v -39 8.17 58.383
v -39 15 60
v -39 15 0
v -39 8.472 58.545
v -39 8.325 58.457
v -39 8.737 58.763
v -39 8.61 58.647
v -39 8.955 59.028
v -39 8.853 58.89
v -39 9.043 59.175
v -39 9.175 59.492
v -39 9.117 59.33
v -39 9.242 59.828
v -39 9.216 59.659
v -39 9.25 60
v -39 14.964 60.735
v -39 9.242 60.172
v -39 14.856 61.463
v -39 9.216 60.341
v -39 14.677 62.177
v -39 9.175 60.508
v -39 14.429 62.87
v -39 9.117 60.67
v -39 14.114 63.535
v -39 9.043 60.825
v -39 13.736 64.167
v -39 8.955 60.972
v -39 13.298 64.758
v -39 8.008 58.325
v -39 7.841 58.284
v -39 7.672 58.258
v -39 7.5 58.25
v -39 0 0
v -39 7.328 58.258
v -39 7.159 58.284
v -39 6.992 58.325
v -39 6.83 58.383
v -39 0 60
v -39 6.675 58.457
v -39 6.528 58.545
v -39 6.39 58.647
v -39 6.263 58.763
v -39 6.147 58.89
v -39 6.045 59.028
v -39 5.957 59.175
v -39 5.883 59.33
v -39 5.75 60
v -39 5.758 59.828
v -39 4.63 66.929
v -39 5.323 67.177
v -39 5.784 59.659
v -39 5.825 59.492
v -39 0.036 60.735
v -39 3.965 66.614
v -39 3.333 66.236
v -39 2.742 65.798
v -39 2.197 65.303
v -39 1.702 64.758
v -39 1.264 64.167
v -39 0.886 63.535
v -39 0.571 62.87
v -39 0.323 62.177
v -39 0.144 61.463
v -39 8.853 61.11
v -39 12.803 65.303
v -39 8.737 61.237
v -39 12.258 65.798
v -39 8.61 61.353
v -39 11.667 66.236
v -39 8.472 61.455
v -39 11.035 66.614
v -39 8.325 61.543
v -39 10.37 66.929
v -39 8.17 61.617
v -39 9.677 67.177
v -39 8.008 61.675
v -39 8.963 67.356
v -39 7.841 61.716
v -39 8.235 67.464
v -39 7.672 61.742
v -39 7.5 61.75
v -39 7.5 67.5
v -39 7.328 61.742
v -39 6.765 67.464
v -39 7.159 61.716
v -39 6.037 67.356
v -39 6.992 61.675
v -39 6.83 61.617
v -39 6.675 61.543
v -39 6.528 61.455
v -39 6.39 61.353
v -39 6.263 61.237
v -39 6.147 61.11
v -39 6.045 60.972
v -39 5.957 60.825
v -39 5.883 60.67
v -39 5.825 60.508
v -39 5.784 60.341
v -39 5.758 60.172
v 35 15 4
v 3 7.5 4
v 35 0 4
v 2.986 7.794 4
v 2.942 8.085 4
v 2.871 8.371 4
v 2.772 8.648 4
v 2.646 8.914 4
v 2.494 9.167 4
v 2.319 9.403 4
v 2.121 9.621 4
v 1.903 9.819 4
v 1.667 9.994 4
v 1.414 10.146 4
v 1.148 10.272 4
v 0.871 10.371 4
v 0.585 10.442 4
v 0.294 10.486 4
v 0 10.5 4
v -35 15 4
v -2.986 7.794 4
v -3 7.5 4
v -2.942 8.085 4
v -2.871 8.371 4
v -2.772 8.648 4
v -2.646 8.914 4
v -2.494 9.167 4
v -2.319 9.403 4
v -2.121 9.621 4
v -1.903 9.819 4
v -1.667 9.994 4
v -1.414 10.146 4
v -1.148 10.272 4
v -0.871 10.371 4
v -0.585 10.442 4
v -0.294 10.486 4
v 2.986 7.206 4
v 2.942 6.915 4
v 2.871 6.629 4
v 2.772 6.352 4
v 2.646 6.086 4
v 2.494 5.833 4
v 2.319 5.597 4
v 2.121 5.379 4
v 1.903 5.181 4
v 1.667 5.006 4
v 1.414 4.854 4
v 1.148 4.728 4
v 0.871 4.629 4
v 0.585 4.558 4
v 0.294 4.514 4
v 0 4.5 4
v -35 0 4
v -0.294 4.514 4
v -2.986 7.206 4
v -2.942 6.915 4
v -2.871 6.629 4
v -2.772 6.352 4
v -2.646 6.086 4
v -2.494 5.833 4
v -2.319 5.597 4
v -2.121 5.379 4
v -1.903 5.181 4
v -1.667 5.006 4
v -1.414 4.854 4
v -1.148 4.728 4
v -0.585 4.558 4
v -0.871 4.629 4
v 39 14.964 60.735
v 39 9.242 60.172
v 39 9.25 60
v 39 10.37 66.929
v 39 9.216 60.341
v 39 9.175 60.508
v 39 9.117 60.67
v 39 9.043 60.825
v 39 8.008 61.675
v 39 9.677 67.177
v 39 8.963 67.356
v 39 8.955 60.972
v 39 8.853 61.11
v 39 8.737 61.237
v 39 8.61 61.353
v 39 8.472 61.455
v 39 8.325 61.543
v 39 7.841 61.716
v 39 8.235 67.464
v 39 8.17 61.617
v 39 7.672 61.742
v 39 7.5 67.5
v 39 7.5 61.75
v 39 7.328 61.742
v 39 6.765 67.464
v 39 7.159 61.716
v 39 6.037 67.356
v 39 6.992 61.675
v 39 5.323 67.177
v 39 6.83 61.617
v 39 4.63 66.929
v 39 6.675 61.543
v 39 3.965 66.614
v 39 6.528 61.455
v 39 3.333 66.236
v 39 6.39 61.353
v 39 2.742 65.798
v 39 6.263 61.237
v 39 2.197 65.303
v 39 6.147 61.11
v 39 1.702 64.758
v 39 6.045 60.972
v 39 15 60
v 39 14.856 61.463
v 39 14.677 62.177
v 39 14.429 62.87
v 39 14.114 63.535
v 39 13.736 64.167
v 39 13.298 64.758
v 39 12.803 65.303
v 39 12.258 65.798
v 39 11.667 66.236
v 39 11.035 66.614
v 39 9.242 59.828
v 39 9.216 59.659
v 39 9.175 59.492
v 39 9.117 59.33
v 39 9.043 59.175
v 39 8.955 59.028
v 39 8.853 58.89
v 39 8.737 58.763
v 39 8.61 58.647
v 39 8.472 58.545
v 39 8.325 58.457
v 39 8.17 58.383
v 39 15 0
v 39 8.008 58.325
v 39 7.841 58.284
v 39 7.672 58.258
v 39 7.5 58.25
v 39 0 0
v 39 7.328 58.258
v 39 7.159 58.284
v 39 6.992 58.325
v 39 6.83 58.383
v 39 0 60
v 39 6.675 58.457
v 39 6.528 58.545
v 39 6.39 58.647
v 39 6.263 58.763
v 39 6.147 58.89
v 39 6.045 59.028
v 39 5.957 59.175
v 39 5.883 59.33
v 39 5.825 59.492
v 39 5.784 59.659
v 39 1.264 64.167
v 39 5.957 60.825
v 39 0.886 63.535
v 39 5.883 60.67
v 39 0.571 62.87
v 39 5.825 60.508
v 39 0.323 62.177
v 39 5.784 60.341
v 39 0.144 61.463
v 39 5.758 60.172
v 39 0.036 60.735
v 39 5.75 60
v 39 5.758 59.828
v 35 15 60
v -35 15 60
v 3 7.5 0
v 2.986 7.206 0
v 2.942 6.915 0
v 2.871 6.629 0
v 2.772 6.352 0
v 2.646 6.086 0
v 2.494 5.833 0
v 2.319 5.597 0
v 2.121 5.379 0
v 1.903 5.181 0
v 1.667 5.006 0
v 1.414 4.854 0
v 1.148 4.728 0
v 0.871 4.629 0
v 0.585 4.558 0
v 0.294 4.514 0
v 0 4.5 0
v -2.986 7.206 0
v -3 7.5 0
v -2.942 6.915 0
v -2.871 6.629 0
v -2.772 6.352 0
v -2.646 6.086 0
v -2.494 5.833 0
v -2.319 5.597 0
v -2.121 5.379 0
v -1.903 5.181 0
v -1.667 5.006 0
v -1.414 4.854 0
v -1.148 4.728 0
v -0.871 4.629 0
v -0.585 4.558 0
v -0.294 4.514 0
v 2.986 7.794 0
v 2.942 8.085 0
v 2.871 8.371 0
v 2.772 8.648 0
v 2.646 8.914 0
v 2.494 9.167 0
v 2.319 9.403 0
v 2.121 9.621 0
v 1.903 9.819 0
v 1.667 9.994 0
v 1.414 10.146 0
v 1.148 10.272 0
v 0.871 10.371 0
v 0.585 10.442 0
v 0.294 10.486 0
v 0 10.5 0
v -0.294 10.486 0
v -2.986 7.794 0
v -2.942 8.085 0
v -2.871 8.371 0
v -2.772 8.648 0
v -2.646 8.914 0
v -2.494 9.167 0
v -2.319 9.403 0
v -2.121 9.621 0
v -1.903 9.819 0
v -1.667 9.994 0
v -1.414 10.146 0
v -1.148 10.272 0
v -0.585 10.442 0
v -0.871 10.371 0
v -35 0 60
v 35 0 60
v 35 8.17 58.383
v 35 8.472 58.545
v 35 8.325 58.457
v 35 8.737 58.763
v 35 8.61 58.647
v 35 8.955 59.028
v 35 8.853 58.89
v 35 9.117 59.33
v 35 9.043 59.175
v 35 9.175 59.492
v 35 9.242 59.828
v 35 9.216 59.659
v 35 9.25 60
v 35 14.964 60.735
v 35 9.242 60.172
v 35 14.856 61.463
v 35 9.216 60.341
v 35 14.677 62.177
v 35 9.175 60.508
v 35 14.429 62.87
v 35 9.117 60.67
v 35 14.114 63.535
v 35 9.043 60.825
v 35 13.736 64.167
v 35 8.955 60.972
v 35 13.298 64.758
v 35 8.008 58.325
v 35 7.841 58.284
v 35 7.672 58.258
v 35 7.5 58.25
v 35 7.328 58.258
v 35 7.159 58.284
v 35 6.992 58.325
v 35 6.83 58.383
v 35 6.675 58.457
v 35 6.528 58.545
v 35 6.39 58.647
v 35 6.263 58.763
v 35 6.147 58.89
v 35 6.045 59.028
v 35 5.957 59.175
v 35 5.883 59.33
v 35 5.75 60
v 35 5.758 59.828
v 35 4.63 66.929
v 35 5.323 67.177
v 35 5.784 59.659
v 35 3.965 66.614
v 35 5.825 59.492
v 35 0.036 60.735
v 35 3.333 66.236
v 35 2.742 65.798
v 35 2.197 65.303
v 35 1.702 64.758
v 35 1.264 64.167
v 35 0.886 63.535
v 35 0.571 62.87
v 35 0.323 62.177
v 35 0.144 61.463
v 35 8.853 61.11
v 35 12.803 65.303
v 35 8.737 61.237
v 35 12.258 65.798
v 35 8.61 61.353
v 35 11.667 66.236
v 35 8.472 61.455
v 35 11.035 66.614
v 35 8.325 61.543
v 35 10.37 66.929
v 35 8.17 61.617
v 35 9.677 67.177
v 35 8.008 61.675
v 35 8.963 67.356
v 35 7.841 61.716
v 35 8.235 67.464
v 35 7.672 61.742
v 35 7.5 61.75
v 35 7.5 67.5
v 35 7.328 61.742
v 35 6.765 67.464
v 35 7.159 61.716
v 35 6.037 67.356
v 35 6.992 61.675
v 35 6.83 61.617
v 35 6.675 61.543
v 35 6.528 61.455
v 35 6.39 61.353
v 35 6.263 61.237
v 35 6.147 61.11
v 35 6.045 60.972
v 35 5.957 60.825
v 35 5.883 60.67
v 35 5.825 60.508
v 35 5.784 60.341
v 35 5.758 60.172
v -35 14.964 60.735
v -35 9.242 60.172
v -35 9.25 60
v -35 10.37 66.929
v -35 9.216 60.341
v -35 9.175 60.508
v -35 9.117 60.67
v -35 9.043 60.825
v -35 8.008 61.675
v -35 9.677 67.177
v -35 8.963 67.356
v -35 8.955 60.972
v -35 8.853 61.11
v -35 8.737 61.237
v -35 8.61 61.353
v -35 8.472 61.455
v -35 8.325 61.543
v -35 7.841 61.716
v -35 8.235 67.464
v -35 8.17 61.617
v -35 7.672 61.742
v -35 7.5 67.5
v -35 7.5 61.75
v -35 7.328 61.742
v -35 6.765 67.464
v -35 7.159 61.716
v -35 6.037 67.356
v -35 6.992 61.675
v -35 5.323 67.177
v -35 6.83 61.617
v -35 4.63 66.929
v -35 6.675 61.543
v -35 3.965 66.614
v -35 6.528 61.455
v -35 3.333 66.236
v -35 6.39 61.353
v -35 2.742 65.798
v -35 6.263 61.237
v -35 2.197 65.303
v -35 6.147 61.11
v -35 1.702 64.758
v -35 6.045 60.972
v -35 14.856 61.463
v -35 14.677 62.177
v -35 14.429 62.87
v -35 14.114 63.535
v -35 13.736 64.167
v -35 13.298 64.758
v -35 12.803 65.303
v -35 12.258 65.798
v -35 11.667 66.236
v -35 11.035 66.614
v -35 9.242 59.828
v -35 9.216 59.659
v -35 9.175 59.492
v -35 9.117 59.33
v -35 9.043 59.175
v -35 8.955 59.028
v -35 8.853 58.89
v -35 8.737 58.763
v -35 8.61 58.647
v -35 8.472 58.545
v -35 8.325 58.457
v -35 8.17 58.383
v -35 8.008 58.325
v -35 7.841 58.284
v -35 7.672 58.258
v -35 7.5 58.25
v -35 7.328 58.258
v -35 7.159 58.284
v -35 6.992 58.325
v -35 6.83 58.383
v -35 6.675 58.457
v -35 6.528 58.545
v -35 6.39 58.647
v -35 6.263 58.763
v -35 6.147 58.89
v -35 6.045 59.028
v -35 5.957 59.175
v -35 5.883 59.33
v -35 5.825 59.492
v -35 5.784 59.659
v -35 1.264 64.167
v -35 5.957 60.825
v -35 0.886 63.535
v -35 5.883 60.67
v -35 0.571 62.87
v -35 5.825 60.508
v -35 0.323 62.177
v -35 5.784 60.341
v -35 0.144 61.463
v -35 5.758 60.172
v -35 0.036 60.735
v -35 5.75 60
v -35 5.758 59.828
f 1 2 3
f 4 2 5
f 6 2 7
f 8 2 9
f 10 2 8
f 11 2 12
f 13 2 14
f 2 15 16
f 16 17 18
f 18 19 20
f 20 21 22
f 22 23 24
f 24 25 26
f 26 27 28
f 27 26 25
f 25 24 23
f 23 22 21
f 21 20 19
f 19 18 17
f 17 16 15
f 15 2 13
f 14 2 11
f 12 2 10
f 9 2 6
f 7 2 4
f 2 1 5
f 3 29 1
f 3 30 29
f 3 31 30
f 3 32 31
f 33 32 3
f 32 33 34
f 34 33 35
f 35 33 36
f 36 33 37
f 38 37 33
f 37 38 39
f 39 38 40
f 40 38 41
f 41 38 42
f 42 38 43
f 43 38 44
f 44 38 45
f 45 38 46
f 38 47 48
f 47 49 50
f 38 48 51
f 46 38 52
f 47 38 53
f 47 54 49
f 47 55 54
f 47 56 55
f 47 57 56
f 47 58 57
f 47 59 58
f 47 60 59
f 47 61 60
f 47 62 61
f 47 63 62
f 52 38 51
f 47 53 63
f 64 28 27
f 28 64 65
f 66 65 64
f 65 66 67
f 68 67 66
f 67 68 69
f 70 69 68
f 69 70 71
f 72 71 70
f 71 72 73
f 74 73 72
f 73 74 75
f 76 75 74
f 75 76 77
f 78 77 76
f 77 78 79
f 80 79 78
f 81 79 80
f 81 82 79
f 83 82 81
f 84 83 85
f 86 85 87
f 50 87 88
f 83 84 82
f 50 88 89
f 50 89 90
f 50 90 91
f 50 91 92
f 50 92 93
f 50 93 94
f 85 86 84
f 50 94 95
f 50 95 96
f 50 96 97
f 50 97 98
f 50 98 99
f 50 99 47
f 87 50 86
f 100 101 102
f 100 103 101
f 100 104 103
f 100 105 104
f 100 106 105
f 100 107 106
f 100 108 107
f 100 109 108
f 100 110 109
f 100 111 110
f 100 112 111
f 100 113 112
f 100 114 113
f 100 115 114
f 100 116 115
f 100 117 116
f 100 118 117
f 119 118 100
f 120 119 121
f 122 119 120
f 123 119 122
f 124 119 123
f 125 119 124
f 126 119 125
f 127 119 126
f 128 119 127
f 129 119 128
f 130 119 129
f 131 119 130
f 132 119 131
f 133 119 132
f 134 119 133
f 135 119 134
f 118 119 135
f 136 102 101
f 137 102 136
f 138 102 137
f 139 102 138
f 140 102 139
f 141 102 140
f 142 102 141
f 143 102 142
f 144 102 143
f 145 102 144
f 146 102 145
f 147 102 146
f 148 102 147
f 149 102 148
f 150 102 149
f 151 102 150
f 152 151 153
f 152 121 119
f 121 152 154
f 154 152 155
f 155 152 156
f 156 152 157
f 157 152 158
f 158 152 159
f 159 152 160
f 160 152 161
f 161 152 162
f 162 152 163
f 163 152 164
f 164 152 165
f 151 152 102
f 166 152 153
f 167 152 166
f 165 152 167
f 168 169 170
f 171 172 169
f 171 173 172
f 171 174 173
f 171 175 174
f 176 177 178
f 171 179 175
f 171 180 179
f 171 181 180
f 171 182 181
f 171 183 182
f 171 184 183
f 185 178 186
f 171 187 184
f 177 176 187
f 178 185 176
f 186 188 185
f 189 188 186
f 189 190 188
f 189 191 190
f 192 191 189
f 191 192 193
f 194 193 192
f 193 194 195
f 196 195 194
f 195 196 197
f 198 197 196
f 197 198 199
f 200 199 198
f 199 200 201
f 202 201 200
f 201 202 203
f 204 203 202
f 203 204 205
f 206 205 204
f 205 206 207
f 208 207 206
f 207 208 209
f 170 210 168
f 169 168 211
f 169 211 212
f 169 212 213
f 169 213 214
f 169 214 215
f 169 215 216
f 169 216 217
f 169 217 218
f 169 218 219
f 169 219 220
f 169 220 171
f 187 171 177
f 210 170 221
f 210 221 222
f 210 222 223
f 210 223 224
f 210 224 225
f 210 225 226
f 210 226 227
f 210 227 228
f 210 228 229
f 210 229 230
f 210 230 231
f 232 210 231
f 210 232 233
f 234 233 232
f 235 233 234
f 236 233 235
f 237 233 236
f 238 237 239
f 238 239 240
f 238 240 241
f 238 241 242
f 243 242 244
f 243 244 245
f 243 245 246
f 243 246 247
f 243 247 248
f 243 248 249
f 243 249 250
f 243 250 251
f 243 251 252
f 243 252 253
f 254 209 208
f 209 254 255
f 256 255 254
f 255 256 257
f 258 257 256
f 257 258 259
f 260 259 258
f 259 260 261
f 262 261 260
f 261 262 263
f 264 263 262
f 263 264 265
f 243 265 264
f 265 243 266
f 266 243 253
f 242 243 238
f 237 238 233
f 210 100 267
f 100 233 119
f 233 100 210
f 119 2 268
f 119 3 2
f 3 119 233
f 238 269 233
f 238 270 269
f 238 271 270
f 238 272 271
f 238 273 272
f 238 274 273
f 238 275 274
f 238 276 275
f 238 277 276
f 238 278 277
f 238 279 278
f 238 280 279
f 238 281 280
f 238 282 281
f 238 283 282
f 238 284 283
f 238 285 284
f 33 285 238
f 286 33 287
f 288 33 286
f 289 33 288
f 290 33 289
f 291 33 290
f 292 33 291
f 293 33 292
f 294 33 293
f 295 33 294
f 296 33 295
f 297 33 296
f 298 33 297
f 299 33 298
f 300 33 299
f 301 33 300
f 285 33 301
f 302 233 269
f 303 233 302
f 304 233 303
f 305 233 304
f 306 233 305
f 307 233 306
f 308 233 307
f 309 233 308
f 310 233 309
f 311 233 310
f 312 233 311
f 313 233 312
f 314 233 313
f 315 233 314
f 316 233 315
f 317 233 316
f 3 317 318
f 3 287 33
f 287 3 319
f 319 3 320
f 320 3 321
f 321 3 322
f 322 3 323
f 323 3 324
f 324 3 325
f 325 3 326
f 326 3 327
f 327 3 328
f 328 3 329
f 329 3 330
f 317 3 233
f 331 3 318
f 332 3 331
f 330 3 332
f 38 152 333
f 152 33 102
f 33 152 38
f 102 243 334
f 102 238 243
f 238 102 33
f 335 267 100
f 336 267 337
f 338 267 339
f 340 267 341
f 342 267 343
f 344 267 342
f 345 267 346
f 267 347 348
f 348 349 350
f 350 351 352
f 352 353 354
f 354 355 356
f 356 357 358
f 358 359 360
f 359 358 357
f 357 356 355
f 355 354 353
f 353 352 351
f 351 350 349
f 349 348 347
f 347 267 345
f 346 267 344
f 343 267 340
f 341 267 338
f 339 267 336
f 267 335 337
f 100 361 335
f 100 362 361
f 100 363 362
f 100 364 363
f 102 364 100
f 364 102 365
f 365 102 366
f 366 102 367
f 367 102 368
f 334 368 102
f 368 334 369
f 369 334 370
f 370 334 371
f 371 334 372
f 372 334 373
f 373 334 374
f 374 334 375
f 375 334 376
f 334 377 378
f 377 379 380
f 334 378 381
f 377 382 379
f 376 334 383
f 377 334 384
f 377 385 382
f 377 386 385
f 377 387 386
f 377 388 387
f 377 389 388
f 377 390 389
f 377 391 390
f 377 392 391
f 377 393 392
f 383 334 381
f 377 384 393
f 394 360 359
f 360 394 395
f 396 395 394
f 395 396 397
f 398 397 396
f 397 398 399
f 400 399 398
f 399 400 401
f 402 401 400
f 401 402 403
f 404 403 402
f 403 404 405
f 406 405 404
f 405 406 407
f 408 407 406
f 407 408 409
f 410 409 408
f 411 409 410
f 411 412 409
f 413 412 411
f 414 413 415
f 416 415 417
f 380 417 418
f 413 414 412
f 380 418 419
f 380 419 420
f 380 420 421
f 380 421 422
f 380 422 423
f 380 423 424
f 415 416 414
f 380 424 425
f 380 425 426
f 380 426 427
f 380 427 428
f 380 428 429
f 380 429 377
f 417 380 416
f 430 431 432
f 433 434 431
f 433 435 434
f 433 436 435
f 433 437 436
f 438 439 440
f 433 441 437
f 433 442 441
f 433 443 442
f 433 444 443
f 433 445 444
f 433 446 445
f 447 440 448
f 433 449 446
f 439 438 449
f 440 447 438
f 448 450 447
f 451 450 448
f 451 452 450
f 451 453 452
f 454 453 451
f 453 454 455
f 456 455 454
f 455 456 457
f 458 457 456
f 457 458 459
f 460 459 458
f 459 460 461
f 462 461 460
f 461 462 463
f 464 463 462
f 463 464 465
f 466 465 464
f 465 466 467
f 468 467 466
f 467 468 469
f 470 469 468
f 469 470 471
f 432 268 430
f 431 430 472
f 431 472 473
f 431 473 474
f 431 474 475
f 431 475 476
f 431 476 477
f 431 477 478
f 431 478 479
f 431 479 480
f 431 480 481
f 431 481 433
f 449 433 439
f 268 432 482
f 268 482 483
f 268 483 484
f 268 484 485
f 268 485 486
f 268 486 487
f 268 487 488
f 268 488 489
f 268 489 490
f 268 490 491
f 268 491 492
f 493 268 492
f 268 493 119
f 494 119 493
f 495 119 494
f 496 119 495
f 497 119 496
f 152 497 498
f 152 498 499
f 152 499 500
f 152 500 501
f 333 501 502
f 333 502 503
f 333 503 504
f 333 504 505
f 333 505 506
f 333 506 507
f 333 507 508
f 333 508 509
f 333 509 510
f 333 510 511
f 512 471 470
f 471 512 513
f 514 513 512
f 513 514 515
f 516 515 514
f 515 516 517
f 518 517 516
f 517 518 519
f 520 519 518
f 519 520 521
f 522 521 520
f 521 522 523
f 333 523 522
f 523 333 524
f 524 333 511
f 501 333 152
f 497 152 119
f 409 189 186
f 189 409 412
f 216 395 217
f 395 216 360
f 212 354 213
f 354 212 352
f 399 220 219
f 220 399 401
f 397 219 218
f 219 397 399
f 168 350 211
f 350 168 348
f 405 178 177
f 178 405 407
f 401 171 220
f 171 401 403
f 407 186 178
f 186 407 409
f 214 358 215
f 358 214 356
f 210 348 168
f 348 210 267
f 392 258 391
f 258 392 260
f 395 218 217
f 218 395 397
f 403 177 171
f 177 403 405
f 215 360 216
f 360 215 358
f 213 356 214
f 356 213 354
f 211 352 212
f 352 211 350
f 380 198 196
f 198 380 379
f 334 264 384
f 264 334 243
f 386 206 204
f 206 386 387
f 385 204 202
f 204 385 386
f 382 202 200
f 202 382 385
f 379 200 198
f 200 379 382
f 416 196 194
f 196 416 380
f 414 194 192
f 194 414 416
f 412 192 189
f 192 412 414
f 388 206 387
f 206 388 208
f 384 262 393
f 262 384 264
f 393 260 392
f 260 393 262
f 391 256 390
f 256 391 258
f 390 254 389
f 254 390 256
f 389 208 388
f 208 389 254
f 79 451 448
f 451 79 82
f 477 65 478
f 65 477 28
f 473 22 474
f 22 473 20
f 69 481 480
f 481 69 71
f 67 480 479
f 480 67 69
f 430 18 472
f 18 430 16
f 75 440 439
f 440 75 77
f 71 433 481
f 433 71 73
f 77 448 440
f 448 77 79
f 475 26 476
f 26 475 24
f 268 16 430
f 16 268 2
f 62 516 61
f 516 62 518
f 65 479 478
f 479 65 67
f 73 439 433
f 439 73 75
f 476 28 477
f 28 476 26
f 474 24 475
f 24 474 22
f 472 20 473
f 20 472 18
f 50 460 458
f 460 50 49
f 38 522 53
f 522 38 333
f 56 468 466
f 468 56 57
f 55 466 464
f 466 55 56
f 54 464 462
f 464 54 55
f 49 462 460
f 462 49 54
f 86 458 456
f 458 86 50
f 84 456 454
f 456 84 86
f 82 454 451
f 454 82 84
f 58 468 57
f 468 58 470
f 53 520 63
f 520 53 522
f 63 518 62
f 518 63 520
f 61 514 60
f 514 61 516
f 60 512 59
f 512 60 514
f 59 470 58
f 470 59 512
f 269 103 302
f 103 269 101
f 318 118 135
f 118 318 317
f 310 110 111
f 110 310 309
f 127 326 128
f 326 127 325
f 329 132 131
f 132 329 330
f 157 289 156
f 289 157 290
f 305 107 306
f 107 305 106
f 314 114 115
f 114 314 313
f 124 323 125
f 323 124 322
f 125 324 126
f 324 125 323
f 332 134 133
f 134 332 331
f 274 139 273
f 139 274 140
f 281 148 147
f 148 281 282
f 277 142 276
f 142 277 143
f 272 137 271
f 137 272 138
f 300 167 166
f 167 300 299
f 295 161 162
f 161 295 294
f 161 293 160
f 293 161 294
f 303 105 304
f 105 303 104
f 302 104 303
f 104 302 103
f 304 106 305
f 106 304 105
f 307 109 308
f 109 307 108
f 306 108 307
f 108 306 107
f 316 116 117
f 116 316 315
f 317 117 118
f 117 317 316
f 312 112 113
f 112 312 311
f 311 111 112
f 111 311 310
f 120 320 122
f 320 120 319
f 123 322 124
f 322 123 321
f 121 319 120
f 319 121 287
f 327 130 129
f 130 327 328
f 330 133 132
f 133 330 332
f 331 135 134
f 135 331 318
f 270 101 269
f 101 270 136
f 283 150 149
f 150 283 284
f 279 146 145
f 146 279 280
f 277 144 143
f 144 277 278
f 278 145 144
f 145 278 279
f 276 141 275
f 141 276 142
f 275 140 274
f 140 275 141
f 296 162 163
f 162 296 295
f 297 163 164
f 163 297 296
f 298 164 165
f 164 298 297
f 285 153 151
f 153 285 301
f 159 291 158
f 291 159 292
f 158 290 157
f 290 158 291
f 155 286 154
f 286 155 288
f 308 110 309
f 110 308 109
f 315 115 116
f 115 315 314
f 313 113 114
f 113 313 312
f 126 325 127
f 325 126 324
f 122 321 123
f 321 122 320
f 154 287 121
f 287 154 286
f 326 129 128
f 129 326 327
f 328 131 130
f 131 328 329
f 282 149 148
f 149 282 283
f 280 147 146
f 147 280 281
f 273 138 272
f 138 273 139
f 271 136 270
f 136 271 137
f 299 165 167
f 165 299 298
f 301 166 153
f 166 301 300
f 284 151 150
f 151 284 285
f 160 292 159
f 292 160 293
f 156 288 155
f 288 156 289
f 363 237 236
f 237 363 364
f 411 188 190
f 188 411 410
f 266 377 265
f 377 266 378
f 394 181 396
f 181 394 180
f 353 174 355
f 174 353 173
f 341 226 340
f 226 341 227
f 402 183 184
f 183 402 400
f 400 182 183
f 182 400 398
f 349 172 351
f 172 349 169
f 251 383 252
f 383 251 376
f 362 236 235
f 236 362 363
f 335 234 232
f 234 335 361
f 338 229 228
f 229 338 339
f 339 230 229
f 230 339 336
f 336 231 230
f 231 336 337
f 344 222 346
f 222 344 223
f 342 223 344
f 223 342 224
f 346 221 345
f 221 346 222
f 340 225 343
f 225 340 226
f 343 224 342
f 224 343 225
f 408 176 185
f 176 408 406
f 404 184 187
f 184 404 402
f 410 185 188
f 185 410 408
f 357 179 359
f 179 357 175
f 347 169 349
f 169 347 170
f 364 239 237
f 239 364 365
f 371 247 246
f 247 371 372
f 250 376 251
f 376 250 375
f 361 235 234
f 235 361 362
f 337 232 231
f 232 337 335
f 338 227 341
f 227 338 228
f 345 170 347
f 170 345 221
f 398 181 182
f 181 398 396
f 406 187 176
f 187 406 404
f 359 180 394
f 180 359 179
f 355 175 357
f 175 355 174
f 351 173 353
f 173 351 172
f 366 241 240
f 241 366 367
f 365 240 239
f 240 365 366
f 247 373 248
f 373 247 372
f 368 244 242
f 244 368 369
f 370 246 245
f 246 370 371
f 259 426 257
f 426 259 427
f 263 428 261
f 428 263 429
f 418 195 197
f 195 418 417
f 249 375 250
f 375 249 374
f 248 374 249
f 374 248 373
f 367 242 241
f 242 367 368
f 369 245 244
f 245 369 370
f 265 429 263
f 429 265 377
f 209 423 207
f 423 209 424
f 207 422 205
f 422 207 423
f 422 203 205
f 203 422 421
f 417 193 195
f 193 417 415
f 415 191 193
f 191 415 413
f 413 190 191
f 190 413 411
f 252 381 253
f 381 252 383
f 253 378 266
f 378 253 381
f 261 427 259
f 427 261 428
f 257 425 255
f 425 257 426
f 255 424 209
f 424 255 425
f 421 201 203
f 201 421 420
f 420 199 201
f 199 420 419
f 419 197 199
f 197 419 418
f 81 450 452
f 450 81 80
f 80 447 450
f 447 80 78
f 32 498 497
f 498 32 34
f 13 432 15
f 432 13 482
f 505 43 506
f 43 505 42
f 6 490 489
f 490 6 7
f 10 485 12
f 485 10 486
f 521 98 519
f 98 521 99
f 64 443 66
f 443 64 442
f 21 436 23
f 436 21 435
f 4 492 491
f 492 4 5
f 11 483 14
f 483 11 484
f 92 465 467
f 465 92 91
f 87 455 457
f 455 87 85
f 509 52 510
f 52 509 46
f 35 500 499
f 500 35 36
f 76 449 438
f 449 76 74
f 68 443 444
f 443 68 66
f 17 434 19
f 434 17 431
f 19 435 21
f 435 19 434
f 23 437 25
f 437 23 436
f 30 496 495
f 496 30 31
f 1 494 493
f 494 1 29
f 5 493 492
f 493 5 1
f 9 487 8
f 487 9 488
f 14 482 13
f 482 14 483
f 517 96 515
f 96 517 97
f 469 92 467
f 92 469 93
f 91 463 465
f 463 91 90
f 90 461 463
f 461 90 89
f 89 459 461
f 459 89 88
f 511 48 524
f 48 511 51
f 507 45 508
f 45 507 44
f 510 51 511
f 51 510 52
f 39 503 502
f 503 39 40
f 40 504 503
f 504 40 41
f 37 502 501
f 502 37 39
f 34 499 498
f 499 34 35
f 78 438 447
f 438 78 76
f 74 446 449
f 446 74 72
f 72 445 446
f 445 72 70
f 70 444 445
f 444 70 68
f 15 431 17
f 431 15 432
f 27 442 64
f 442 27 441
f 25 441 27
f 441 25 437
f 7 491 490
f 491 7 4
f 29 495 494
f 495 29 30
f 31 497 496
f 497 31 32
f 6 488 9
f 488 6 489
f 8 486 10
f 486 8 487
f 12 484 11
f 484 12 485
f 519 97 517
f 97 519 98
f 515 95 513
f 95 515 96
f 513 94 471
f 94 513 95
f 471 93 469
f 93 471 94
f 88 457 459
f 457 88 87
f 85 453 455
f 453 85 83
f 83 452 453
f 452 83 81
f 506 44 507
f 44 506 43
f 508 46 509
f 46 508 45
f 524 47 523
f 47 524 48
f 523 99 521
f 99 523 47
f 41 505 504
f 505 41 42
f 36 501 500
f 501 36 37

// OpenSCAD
// Definition size of housing
// **************************

intdia      = 60;    
lensdia      = 30;     
height     = 19;
recess     = 2.4;
wall        = 2;
overlap = 10;

radius     = 1.2;            
act_x      = 2.4;
act_y      = 2.4;
act_z      = 4;

act_clip_w=1;

//Definition of circle angular resolution
resol        = 64;           // Identical to housing !!!


difference () {

    union () {
    translate ([-39,0,0]) cube([78,15,4]);        
    translate ([35,0,0]) cube([4,15,60]);
    translate ([-39,0,0]) cube([4,15,60]);
    translate ([35,7.5,60]) rotate ([0,90,0]) cylinder( h=4, r=7.5, $fn = resol);
    translate ([-39,7.5,60]) rotate ([0,90,0]) cylinder( h=4, r=7.5, $fn = resol);

    };
    
    translate ([0,7.5,0]) cylinder( h=5, r=3, $fn = resol);
    translate ([35,7.5,60]) rotate ([0,90,0]) cylinder( h=height+2, r=1.75, $fn = resol);
    translate ([-35,7.5,60]) rotate ([0,270,0]) cylinder( h=height+2, r=1.75, $fn = resol);




   // Space for Breakouts, holes, ...


};
